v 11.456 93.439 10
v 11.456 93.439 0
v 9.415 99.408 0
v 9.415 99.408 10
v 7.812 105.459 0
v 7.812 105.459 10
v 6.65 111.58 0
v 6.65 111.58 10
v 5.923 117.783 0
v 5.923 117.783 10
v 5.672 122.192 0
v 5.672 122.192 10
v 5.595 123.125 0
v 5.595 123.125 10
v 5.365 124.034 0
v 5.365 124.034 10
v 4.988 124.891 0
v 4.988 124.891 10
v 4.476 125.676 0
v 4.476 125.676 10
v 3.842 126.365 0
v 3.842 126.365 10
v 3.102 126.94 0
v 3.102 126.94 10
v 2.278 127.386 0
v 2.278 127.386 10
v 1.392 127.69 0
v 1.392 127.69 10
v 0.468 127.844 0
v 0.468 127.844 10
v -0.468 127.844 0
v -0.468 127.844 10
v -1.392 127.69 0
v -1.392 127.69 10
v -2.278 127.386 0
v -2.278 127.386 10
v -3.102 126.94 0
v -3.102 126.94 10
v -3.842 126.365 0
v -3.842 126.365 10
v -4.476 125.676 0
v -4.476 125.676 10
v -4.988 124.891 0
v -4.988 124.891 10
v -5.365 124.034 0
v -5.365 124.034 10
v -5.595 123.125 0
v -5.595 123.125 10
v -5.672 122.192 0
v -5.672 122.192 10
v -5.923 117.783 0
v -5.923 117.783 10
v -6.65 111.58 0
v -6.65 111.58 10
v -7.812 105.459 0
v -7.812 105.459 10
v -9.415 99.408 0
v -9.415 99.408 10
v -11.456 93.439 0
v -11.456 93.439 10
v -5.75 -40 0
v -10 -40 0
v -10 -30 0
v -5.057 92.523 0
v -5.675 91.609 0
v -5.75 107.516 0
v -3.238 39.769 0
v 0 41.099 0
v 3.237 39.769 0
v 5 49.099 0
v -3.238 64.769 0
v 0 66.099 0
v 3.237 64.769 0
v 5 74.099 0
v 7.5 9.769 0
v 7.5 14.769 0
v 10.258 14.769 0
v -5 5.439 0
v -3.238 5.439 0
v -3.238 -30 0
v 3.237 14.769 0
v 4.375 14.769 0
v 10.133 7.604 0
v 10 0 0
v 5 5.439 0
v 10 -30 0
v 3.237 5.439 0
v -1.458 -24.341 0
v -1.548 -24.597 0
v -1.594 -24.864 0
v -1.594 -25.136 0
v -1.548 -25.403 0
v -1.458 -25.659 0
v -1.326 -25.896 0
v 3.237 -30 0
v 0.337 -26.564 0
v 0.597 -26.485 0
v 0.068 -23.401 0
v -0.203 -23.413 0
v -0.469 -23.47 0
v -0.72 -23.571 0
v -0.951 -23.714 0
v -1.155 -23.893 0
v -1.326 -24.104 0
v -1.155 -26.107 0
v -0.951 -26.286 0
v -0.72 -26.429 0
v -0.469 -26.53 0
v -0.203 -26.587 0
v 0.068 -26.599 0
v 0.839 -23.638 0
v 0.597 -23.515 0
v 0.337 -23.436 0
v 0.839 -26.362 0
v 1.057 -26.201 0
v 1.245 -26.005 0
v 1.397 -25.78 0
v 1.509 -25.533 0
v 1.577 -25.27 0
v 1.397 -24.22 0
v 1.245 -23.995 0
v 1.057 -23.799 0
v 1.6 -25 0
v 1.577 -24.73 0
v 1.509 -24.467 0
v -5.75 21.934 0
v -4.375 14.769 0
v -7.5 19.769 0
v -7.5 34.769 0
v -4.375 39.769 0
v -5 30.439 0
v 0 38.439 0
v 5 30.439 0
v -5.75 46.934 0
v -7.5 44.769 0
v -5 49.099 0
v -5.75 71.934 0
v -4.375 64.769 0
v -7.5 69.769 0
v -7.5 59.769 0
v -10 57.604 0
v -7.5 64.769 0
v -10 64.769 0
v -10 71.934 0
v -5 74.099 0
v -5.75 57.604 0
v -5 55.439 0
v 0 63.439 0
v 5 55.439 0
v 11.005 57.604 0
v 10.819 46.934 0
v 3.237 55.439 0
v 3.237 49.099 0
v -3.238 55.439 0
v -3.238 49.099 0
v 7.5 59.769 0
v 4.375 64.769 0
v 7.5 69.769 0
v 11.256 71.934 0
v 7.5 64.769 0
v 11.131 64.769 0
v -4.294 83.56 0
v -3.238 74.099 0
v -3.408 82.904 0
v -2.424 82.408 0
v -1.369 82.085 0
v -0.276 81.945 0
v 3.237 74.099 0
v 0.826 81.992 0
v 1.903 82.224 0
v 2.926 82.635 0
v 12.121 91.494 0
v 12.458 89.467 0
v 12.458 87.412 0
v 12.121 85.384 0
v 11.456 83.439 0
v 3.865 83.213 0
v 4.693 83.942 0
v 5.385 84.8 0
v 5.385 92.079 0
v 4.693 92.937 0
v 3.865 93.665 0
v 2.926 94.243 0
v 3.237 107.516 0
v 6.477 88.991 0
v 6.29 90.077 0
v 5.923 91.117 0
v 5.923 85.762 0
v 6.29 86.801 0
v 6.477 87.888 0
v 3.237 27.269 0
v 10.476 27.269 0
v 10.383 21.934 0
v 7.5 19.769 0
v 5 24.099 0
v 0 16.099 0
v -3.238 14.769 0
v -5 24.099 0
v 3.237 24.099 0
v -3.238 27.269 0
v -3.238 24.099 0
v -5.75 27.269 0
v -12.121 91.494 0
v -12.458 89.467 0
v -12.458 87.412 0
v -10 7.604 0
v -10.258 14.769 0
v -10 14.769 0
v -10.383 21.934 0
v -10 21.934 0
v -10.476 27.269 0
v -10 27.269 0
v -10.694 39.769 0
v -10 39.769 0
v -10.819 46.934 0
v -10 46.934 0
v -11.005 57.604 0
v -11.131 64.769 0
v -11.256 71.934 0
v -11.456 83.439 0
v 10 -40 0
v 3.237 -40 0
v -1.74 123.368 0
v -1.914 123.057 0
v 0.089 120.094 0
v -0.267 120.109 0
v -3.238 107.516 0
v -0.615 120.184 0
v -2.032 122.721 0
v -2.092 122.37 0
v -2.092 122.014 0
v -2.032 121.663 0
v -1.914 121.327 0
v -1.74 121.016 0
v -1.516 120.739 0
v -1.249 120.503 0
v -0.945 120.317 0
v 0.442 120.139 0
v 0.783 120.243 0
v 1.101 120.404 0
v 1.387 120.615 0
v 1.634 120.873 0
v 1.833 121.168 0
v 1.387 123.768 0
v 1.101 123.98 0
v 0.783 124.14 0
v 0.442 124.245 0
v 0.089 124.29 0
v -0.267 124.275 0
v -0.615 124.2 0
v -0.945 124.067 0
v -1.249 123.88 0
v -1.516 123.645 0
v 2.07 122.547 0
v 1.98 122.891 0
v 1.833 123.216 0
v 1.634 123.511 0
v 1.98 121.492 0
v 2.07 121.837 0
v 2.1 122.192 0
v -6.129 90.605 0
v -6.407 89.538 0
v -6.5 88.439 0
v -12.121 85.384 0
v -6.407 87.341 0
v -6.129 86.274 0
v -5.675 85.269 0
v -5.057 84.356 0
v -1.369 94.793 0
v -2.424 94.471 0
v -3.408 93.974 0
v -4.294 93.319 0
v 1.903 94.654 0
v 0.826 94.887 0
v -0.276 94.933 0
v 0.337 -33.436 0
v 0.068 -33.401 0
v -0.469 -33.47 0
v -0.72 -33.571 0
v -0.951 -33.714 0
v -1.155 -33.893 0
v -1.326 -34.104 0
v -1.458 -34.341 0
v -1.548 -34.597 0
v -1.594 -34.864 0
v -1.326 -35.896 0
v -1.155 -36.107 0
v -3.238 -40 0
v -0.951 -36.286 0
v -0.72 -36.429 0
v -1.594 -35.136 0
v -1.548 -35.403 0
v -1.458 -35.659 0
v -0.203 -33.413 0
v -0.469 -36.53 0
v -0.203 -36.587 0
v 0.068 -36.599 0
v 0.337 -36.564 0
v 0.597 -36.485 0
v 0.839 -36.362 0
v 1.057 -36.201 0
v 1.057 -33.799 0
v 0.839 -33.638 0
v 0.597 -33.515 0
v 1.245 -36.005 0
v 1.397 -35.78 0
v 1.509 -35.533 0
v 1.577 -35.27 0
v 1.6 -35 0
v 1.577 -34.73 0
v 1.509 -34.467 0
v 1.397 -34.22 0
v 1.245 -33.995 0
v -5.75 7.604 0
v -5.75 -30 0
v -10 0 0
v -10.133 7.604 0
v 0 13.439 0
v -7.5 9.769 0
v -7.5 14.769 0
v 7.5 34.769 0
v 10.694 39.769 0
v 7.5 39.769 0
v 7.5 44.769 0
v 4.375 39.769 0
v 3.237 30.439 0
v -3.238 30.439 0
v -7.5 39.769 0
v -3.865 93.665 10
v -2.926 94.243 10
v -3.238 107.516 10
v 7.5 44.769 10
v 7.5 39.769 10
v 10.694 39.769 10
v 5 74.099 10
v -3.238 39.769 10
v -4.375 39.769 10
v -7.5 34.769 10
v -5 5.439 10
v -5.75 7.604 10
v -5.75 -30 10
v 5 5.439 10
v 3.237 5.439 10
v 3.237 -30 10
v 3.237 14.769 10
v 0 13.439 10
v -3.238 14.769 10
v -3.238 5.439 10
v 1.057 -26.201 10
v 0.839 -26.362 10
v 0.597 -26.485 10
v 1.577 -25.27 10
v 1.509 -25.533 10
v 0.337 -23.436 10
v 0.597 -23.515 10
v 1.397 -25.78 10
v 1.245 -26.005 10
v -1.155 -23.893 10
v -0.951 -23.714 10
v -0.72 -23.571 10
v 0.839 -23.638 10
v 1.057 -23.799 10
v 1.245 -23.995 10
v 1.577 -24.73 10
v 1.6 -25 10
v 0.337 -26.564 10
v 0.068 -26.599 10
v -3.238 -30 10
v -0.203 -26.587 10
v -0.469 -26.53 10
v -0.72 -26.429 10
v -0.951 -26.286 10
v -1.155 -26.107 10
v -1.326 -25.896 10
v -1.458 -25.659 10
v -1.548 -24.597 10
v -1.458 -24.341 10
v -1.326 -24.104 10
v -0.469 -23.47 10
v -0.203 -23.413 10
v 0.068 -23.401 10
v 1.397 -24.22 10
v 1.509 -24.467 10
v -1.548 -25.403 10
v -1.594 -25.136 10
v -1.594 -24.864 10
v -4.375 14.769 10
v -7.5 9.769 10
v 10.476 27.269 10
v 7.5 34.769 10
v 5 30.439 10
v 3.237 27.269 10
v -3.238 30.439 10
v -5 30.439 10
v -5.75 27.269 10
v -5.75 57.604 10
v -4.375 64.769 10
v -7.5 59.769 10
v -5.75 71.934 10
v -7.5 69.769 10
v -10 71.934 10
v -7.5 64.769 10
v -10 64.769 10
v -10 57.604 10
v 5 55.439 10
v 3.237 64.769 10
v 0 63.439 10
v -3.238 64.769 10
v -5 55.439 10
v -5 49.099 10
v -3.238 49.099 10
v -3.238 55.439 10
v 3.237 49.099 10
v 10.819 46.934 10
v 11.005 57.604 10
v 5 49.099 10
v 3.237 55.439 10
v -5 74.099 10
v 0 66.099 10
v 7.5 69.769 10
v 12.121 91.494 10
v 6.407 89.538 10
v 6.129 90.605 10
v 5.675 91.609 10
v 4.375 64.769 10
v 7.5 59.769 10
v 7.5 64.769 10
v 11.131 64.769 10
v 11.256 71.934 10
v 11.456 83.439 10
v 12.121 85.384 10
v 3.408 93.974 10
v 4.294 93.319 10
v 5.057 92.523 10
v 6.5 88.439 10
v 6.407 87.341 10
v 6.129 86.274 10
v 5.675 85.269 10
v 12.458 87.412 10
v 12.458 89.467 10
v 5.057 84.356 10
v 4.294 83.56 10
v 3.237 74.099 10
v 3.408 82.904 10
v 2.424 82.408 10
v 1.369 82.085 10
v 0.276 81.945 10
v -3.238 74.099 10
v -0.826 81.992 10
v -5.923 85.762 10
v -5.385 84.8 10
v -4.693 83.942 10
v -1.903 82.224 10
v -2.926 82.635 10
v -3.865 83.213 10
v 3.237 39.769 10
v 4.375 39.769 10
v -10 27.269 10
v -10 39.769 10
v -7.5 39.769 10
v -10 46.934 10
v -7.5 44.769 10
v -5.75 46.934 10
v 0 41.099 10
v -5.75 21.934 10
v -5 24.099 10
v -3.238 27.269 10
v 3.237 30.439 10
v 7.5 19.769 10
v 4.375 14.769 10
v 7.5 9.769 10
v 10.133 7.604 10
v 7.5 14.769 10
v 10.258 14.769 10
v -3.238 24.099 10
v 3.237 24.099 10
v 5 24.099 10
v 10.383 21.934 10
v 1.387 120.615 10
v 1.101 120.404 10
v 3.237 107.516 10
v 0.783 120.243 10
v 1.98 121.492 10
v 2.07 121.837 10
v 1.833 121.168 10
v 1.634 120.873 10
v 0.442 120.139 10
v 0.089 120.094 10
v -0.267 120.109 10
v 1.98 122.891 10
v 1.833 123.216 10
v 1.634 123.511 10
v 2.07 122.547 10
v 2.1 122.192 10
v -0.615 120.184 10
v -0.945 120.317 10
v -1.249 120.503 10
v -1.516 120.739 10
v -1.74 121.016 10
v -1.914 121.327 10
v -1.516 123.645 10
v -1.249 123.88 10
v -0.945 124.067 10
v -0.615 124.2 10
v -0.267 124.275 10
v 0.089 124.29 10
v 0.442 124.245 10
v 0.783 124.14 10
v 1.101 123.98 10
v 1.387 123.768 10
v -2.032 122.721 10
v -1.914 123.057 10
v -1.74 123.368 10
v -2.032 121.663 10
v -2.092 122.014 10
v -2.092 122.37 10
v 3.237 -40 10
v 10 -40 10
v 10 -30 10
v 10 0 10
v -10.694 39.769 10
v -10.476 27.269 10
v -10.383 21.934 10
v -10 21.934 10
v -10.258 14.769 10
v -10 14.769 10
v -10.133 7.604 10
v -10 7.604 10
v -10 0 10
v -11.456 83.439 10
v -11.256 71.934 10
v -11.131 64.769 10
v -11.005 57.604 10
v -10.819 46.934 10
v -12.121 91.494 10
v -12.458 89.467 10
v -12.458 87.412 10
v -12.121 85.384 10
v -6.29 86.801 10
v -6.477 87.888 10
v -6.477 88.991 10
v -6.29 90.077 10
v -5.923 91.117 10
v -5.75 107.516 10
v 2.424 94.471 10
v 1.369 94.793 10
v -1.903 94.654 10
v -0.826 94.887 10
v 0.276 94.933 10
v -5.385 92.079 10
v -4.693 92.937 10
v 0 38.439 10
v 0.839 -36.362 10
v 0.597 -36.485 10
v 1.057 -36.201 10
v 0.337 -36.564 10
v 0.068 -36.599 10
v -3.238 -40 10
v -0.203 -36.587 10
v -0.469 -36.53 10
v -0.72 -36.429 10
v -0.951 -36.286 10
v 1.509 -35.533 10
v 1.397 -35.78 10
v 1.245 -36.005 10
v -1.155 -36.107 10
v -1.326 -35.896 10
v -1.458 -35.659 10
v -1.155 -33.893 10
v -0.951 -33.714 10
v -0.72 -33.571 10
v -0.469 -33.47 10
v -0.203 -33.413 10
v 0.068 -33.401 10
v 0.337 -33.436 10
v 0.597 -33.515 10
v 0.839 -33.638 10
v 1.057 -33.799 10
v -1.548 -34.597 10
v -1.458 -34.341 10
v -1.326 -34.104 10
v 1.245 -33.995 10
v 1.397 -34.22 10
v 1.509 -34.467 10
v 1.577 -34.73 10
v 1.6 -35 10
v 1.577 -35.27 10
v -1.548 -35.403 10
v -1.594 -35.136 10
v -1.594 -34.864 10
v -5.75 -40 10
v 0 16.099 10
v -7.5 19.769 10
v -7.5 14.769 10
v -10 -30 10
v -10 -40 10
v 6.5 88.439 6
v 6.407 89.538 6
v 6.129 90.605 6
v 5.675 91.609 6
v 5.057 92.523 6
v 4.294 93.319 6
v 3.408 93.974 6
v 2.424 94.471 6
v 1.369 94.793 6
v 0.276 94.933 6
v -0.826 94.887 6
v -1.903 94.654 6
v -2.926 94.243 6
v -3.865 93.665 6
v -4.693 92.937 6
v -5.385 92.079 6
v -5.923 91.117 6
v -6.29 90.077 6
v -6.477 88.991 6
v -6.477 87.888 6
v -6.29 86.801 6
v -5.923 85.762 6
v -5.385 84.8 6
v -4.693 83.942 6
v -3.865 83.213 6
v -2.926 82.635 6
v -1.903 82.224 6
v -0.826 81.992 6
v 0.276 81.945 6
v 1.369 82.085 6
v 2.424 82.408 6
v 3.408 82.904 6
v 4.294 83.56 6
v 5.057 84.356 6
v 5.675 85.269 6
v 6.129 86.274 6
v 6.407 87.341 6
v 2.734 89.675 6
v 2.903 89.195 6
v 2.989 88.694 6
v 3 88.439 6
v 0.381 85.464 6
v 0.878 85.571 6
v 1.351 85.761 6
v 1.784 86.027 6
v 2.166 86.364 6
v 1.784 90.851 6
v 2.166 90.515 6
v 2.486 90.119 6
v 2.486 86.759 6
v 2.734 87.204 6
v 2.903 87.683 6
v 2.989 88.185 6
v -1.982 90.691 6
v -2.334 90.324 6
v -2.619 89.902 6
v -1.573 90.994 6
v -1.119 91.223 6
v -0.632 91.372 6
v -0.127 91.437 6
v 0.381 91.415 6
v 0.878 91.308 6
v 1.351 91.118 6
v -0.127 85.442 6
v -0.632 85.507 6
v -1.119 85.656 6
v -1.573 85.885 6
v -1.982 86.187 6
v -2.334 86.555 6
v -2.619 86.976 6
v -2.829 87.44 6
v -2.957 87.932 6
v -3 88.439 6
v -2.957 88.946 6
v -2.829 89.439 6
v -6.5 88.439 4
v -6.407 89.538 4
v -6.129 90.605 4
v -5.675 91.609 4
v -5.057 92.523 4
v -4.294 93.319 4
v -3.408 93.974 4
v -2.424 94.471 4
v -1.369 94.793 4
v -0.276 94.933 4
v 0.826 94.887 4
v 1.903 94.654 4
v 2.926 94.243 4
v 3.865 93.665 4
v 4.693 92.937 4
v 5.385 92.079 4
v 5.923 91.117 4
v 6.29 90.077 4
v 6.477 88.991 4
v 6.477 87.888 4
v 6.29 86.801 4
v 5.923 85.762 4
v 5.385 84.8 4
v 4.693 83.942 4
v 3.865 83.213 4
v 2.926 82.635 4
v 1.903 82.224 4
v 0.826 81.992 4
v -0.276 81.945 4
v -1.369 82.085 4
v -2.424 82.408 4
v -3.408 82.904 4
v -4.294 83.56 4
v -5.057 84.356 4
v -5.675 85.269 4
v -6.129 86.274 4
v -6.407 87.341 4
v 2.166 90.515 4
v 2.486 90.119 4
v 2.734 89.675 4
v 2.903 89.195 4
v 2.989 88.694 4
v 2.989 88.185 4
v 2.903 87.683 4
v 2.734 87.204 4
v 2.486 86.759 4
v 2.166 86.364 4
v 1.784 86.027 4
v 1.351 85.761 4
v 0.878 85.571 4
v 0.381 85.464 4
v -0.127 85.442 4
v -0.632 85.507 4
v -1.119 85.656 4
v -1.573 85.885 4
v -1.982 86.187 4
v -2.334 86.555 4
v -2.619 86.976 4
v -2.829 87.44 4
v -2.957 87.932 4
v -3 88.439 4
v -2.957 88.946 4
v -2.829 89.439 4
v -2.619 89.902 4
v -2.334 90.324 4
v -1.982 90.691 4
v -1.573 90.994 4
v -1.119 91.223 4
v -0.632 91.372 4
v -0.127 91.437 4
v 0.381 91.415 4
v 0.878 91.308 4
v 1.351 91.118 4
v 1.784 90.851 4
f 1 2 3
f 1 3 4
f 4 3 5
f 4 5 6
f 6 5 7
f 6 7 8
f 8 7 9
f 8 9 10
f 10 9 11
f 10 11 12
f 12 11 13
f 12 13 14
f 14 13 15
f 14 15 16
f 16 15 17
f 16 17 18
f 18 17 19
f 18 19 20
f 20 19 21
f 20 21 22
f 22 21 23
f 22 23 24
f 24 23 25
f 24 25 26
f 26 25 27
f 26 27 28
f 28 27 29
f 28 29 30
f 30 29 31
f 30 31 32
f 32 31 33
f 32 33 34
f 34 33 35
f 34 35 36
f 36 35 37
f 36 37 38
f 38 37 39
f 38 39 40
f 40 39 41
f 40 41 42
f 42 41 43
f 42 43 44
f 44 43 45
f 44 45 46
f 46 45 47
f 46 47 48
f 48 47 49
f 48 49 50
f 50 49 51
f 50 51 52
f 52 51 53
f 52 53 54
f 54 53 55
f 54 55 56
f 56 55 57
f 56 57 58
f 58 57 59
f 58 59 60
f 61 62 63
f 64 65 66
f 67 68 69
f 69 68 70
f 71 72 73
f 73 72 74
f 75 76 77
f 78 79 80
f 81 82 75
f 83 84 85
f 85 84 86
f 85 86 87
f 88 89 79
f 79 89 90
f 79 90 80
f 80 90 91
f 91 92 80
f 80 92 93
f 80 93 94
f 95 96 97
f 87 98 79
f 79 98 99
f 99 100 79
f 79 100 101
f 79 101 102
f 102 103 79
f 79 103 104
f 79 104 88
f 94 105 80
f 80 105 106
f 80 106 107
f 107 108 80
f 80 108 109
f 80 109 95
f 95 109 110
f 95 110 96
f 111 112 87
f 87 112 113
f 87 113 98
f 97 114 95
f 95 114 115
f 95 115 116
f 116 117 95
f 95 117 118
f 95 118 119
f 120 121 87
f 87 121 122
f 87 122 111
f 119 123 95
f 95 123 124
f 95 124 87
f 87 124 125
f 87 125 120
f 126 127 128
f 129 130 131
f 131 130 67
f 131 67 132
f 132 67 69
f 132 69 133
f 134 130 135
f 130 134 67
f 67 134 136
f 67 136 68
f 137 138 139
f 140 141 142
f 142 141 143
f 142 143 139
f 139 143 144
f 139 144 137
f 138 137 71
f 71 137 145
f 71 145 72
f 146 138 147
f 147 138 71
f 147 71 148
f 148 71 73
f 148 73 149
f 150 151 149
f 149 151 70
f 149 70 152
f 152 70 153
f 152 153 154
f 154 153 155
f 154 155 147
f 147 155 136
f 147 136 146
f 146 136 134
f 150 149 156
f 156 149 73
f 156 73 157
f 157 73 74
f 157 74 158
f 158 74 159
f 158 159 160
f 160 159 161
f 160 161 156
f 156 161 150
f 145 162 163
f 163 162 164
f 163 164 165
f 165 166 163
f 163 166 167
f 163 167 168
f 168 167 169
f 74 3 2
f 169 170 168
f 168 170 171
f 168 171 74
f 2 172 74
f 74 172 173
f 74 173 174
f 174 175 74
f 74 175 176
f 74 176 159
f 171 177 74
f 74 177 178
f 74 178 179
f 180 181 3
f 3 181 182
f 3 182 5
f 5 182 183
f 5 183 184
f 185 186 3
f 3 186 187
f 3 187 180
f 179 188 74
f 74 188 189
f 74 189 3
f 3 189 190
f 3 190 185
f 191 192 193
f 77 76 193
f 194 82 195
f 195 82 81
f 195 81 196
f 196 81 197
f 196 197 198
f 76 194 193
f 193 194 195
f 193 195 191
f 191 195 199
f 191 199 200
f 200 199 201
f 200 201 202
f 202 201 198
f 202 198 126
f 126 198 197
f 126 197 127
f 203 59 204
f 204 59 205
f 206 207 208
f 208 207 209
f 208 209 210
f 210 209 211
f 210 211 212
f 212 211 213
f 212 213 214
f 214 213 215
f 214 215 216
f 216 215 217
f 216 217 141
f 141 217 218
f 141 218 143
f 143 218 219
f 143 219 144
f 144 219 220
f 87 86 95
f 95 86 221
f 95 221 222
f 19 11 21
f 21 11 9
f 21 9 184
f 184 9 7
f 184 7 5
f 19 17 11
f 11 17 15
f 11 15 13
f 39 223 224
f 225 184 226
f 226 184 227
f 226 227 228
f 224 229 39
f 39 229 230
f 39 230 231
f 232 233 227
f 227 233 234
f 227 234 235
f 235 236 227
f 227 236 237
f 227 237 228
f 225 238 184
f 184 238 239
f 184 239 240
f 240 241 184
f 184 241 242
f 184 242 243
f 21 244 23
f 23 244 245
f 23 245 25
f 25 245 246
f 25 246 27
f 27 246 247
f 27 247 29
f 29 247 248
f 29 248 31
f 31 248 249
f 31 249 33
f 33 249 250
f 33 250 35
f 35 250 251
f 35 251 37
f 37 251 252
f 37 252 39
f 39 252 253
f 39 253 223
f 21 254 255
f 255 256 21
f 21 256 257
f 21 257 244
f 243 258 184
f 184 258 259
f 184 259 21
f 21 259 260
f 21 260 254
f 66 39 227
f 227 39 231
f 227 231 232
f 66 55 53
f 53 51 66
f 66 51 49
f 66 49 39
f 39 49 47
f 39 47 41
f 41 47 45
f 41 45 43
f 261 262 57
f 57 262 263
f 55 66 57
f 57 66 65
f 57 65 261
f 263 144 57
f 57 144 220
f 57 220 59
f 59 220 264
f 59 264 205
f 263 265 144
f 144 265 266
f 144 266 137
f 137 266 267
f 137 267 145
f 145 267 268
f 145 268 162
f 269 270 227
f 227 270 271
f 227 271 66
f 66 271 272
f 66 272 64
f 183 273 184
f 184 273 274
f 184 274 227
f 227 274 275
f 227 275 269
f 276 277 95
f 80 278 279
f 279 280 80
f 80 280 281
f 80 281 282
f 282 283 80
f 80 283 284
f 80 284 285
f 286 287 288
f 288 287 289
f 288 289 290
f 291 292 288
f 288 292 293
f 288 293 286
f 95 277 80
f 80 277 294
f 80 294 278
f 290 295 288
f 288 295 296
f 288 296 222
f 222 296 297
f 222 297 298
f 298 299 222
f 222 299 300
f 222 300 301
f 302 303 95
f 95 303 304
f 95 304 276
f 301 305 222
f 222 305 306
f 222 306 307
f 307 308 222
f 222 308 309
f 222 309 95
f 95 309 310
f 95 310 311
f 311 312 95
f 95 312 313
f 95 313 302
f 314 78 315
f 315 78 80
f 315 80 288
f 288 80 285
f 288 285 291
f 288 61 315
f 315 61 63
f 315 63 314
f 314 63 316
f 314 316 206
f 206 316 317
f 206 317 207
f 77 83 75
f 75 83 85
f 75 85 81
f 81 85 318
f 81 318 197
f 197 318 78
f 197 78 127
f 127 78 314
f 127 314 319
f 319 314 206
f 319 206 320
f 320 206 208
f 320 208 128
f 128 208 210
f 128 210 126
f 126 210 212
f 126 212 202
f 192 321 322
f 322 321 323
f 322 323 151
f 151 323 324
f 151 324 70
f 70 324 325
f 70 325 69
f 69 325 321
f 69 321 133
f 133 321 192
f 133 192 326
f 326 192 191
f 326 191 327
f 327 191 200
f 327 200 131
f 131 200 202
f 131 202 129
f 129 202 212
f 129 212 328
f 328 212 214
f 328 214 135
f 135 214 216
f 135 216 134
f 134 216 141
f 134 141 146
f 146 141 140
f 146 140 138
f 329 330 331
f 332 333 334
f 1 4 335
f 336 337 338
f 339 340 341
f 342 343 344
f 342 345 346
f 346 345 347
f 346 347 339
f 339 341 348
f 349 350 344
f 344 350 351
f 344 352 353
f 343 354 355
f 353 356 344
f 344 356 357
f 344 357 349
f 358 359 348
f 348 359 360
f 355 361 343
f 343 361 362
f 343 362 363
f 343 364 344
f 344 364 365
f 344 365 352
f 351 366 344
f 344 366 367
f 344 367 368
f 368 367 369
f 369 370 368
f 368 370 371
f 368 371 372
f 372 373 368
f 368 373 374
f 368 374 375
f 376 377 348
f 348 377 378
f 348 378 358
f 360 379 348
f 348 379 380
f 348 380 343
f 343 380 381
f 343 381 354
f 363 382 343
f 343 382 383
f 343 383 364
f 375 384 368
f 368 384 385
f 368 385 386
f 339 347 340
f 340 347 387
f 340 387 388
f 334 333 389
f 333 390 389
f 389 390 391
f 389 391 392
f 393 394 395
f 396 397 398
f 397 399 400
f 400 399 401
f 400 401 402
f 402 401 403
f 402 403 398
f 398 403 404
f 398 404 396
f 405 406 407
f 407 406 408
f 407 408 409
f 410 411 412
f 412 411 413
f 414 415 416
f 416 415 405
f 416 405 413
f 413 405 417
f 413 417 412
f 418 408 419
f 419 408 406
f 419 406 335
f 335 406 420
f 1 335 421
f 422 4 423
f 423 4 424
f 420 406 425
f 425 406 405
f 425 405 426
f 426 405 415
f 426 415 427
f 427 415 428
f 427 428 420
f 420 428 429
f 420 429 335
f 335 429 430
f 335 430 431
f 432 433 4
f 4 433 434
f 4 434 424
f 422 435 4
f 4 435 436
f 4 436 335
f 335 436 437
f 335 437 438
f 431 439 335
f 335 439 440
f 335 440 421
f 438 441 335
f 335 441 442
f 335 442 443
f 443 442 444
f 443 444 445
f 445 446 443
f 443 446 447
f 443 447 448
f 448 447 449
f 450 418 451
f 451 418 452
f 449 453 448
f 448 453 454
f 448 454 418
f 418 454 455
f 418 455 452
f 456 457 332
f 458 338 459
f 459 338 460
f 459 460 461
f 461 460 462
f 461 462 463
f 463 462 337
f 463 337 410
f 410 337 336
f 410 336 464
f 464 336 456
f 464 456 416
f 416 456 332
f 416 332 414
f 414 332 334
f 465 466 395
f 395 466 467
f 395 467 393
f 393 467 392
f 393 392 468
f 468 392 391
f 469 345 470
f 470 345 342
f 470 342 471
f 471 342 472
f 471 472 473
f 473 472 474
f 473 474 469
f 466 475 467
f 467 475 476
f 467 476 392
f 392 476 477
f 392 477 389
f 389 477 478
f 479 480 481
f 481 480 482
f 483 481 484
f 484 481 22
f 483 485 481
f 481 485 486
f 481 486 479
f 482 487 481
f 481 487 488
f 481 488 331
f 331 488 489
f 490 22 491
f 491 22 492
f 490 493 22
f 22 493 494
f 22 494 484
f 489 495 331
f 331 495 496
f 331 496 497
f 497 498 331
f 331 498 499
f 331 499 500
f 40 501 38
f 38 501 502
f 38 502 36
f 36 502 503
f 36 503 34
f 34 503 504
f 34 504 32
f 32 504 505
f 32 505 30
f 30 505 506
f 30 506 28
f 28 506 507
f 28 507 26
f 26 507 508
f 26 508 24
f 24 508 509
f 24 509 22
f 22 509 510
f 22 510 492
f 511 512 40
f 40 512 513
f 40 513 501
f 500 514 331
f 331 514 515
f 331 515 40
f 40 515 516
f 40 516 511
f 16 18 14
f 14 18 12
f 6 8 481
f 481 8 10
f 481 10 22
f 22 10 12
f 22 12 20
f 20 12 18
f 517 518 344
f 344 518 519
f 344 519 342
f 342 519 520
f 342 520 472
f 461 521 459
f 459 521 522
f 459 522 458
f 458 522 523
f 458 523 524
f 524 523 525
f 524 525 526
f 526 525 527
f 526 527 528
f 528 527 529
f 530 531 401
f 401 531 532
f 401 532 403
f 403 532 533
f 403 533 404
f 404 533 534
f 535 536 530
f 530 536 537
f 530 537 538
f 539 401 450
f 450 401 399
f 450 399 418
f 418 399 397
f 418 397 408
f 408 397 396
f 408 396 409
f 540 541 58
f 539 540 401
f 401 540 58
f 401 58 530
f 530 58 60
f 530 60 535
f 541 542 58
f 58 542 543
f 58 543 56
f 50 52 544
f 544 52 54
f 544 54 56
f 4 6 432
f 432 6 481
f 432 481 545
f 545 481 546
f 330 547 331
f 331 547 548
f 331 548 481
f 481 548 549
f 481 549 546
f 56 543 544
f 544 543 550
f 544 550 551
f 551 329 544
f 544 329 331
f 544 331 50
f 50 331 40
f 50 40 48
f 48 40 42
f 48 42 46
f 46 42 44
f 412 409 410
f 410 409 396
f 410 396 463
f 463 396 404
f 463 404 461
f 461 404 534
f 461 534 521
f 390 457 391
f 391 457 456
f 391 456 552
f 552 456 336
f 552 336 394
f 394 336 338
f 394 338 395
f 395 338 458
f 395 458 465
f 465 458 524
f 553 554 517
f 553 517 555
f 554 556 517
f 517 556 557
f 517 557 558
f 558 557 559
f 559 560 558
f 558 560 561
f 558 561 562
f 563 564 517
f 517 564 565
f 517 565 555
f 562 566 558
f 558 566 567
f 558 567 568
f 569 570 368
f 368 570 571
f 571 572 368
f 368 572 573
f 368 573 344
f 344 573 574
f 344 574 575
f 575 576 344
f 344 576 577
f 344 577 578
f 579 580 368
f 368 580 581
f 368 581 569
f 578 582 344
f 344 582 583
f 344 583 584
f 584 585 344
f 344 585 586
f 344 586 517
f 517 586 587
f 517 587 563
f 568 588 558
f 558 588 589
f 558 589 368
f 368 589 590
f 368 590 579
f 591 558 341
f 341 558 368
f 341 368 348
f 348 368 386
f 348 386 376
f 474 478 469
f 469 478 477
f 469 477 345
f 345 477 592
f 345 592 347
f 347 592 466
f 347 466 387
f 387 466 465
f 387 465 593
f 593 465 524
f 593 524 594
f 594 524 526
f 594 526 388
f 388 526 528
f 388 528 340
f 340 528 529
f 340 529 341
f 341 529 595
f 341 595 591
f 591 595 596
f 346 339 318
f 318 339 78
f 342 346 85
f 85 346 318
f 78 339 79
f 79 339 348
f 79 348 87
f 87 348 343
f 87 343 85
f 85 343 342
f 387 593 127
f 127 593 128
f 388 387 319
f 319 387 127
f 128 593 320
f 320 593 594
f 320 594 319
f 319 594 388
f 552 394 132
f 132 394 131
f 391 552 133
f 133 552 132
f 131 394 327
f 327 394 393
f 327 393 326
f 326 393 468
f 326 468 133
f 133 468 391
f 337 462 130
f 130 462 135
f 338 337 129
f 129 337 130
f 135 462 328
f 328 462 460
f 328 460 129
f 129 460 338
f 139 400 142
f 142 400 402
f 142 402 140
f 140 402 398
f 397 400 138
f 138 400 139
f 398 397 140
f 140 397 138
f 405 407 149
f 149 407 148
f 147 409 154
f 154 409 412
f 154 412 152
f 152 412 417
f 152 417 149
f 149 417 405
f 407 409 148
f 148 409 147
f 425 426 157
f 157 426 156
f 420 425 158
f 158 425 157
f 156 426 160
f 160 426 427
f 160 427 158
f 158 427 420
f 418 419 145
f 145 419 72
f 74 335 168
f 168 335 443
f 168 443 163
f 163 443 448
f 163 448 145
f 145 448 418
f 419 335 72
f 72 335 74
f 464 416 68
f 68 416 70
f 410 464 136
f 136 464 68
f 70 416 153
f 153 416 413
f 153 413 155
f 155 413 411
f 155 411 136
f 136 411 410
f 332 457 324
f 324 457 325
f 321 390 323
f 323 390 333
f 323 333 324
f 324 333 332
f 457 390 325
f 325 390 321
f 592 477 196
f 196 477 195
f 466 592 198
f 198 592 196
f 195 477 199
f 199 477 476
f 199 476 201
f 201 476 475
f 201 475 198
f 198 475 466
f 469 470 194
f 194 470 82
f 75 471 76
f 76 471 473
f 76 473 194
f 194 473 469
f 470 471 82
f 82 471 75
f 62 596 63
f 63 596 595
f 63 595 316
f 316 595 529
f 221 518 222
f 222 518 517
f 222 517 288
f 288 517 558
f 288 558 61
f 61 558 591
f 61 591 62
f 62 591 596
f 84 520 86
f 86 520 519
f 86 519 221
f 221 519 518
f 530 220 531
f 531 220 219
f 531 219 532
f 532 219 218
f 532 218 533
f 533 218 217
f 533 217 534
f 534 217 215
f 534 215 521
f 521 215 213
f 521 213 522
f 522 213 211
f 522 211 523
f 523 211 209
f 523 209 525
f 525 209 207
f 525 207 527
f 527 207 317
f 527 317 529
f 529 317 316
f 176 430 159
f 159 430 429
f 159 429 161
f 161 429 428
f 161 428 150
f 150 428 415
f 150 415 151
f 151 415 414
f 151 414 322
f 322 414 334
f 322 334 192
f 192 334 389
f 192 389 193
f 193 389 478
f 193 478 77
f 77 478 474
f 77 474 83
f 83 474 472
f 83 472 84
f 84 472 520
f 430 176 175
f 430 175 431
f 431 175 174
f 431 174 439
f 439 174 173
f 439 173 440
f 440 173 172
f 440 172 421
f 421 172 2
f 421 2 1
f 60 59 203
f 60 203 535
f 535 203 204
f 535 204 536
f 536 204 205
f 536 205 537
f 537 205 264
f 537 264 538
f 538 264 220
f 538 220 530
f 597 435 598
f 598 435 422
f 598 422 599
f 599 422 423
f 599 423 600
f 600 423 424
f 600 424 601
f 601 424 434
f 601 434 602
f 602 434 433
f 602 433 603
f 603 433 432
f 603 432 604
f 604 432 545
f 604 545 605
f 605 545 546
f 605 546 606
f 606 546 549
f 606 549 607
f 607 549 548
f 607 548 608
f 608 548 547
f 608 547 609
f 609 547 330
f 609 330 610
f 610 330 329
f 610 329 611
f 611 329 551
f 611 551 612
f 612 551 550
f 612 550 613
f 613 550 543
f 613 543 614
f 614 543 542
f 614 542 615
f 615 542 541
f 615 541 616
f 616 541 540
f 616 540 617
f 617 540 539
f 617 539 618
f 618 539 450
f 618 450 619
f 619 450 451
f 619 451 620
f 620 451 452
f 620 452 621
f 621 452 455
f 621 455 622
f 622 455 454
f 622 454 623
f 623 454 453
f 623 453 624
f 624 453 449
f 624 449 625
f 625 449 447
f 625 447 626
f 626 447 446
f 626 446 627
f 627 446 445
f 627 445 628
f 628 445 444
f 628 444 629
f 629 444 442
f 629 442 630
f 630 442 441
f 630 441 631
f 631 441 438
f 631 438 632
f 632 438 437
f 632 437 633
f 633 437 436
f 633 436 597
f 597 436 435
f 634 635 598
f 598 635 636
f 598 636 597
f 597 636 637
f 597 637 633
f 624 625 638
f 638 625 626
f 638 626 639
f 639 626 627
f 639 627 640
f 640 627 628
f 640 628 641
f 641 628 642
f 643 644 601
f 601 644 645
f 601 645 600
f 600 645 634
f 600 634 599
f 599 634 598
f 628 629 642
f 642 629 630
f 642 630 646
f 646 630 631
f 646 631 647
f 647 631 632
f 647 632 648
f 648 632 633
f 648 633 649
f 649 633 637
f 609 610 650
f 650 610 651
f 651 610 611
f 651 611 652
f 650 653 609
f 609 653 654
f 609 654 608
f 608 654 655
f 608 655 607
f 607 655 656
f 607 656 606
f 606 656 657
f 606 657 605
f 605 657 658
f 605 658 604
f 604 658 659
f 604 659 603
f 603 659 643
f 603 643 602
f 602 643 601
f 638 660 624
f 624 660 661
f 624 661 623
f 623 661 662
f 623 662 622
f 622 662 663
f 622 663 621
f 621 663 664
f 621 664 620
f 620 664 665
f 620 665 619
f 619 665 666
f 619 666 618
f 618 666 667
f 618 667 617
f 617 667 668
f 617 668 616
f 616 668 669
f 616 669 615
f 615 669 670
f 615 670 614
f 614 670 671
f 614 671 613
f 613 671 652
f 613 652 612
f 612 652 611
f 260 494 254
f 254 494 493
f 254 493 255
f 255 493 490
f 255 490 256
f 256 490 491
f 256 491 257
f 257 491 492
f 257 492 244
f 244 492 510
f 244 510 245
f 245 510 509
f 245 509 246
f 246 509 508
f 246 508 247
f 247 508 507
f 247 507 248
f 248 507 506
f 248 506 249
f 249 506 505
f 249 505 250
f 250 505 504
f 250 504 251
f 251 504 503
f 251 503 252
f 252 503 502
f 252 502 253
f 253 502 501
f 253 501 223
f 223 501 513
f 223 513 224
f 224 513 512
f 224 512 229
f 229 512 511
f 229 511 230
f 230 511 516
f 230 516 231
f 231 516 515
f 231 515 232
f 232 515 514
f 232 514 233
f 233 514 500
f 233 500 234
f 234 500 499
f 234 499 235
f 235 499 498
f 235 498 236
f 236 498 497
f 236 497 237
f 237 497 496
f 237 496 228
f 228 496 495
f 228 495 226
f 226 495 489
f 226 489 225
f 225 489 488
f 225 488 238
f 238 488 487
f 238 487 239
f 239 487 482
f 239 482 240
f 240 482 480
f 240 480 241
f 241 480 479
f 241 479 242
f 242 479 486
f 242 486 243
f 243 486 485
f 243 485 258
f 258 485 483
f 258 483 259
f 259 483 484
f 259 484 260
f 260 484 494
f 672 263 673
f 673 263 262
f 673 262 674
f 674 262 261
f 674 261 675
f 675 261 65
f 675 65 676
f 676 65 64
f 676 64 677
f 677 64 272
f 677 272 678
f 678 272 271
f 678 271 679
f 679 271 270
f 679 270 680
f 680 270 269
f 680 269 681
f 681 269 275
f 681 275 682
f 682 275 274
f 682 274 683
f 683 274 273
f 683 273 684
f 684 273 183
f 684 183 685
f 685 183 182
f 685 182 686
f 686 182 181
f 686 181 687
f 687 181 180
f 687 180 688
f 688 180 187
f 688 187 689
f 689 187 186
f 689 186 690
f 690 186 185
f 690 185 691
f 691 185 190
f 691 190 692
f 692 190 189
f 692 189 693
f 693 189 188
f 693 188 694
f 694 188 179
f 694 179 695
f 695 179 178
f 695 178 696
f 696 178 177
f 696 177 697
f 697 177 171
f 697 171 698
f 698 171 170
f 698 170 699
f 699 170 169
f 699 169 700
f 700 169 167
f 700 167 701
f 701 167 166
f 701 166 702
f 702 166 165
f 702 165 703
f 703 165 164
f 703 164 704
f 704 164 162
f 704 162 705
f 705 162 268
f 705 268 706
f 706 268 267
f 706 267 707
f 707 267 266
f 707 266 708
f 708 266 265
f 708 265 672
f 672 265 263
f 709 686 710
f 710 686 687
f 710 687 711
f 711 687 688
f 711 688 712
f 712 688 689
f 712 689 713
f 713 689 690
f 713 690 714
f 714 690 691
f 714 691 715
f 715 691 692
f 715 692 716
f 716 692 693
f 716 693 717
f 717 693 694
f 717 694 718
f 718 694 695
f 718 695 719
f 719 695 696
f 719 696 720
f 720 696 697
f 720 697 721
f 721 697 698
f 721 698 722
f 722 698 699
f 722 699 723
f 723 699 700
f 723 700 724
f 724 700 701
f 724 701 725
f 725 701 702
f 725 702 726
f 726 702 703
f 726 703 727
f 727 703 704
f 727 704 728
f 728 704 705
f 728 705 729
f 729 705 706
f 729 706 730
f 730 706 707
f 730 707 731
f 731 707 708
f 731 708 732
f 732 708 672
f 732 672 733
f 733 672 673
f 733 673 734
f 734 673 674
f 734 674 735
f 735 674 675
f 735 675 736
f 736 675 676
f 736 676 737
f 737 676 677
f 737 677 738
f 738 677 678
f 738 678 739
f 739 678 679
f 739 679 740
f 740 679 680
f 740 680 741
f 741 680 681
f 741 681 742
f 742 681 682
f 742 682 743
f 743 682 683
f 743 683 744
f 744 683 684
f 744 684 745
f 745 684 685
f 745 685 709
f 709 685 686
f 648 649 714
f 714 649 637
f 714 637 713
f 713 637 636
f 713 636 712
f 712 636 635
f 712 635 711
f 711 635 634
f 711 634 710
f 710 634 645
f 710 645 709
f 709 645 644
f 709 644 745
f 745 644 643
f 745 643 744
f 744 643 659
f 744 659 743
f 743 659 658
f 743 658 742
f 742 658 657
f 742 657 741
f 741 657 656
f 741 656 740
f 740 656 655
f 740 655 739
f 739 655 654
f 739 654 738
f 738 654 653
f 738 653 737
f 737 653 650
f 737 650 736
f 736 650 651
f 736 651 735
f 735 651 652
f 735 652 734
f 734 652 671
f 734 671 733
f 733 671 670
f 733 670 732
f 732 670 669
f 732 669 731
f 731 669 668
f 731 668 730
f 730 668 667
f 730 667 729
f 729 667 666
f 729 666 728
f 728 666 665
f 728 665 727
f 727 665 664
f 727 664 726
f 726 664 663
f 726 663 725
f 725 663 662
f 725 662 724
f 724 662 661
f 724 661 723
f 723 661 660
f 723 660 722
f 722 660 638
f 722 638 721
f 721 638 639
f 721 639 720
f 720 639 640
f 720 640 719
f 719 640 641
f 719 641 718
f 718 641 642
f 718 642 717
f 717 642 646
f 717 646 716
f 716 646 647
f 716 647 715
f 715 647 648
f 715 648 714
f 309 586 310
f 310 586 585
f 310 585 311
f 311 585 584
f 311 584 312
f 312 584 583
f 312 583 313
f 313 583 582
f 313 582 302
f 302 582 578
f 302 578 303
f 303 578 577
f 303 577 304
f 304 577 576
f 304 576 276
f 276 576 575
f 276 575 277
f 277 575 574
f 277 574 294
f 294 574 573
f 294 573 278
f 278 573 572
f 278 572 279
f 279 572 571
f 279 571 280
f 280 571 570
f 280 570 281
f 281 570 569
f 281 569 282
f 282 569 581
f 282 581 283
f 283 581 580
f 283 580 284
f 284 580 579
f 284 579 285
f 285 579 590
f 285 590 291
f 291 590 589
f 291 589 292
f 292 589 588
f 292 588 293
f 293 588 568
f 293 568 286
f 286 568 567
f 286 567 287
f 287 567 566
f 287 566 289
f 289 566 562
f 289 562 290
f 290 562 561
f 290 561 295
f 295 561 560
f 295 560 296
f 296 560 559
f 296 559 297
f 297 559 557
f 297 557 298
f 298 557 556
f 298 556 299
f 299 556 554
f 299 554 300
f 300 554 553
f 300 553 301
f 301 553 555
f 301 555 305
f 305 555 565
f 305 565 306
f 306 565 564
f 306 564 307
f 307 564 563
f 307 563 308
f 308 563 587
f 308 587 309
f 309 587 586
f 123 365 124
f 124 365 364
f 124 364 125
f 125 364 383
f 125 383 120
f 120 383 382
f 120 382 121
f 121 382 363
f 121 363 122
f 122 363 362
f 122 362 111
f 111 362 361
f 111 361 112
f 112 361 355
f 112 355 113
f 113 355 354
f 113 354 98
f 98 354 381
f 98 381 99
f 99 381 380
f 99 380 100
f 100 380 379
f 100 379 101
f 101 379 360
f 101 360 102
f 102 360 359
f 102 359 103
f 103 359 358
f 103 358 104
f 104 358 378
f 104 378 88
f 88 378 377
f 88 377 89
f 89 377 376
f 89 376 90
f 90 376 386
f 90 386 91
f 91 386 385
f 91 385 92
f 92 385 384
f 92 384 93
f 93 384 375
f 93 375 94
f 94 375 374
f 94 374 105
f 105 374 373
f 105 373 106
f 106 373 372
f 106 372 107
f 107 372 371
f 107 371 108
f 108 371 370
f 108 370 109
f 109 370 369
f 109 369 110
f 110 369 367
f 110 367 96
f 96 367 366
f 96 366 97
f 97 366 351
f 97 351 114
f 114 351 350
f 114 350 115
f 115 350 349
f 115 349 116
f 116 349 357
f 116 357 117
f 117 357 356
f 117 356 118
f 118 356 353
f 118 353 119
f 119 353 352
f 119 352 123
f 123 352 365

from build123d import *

# Parameters (mm, degrees)
BOSS_EXTRUDE1_DEPTH = 10
SKETCH2_R           = 2.1
SKETCH2_R_2         = 6.5
CUT_EXTRUDE1_DEPTH  = 4
SKETCH3_R           = 6.5
CUT_EXTRUDE2_DEPTH  = 4
SKETCH4_R           = 3
CUT_EXTRUDE3_DEPTH  = 7.0000001
SKETCH7_R           = 1.6
CUT_EXTRUDE6_DEPTH  = 11.0000001
SKETCH8_R           = 2.1
CUT_EXTRUDE7_DEPTH  = 11.0000001


with BuildPart() as part:
    # Sketch1 → Boss-Extrude1 (new body)
    with BuildSketch(Plane.XY):
        with BuildLine():
            Line((10, 0), (11.456439237, 83.439348028))
            ThreePointArc((11.456439237, 83.439348028), (12.5, 88.439348028), (11.456439237, 93.439348028))
            add(Edge.make_bspline(
                [(11.456439237, 93.439348028), (6.1563812, 107.325761573), (5.671965352, 122.191845585)],
                knots=[0, 0, 0, 1, 1, 1], degree=2))
            ThreePointArc((5.671965352, 122.191845585), (0, 127.863810938), (-5.671965352, 122.191845585))
            add(Edge.make_bspline(
                [(-11.456439237, 93.439348028), (-6.1563812, 107.325761573), (-5.671965352, 122.191845585)],
                knots=[0, 0, 0, 1, 1, 1], degree=2))
            ThreePointArc((-11.456439237, 93.439348028), (-12.5, 88.439348028), (-11.456439237, 83.439348028))
            Line((-11.456439237, 83.439348028), (-10, 0))
            Line((-10, 0), (-10, -40))
            Line((-10, -40), (10, -40))
            Line((10, -40), (10, 0))
        make_face()
        Polygon((-7.5, 19.769248097), (-4.375, 14.769248097), (-7.5, 9.769248097), align=None, mode=Mode.SUBTRACT)
        Polygon((-7.5, 44.769248097), (-4.375, 39.769248097), (-7.5, 34.769248097), align=None, mode=Mode.SUBTRACT)
        Polygon((-5, 5.439121078), (0, 13.439121078), (5, 5.439121078), align=None, mode=Mode.SUBTRACT)
        Polygon((0, 16.099375116), (-5, 24.099375116), (5, 24.099375116), align=None, mode=Mode.SUBTRACT)
        Polygon((7.5, 19.769248097), (7.5, 9.769248097), (4.375, 14.769248097), align=None, mode=Mode.SUBTRACT)
        Polygon((-5, 30.439121078), (0, 38.439121078), (5, 30.439121078), align=None, mode=Mode.SUBTRACT)
        Polygon((7.5, 44.769248097), (7.5, 34.769248097), (4.375, 39.769248097), align=None, mode=Mode.SUBTRACT)
        Polygon((-7.5, 69.769248097), (-4.375, 64.769248097), (-7.5, 59.769248097), align=None, mode=Mode.SUBTRACT)
        Polygon((5, 55.439121078), (-5, 55.439121078), (0, 63.439121078), align=None, mode=Mode.SUBTRACT)
        Polygon((0, 66.099375116), (-5, 74.099375116), (5, 74.099375116), align=None, mode=Mode.SUBTRACT)
        Polygon((0, 41.099375116), (-5, 49.099375116), (5, 49.099375116), align=None, mode=Mode.SUBTRACT)
        Polygon((4.375, 64.769248097), (7.5, 69.769248097), (7.5, 59.769248097), align=None, mode=Mode.SUBTRACT)
    extrude(amount=BOSS_EXTRUDE1_DEPTH)

    # Sketch2 → Cut-Extrude1 (cut)
    with BuildSketch(Plane.XY.offset(10)):
        with Locations((0, 122.191845585)):
            Circle(SKETCH2_R)
        with Locations((0, 88.439348028)):
            Circle(SKETCH2_R_2)
    extrude(amount=-CUT_EXTRUDE1_DEPTH, mode=Mode.SUBTRACT)

    # Sketch3 → Cut-Extrude2 (cut)
    with BuildSketch(Plane(origin=(0, 0, 0), x_dir=(-1, 0, 0), z_dir=(0, 0, -1))):
        with Locations((0, 88.439348028)):
            Circle(SKETCH3_R)
    extrude(amount=-CUT_EXTRUDE2_DEPTH, mode=Mode.SUBTRACT)

    # Sketch4 → Cut-Extrude3 (cut, through all)
    with BuildSketch(Plane(origin=(0, 0, 4), x_dir=(-1, 0, 0), z_dir=(0, 0, -1))):
        with Locations((0, 88.439348028)):
            Circle(SKETCH4_R)
    extrude(amount=-CUT_EXTRUDE3_DEPTH, mode=Mode.SUBTRACT)

    # Sketch7 → Cut-Extrude6 (cut, through all)
    with BuildSketch(Plane.XY.offset(10)):
        with Locations((0, -25)):
            Circle(SKETCH7_R)
        with Locations((0, -35)):
            Circle(SKETCH7_R)
    extrude(amount=-CUT_EXTRUDE6_DEPTH, mode=Mode.SUBTRACT)

    # Sketch8 → Cut-Extrude7 (cut, through all)
    with BuildSketch(Plane.XY.offset(10)):
        with Locations((0, 122.191845585)):
            Circle(SKETCH8_R)
    extrude(amount=-CUT_EXTRUDE7_DEPTH, mode=Mode.SUBTRACT)


solid = part.part
